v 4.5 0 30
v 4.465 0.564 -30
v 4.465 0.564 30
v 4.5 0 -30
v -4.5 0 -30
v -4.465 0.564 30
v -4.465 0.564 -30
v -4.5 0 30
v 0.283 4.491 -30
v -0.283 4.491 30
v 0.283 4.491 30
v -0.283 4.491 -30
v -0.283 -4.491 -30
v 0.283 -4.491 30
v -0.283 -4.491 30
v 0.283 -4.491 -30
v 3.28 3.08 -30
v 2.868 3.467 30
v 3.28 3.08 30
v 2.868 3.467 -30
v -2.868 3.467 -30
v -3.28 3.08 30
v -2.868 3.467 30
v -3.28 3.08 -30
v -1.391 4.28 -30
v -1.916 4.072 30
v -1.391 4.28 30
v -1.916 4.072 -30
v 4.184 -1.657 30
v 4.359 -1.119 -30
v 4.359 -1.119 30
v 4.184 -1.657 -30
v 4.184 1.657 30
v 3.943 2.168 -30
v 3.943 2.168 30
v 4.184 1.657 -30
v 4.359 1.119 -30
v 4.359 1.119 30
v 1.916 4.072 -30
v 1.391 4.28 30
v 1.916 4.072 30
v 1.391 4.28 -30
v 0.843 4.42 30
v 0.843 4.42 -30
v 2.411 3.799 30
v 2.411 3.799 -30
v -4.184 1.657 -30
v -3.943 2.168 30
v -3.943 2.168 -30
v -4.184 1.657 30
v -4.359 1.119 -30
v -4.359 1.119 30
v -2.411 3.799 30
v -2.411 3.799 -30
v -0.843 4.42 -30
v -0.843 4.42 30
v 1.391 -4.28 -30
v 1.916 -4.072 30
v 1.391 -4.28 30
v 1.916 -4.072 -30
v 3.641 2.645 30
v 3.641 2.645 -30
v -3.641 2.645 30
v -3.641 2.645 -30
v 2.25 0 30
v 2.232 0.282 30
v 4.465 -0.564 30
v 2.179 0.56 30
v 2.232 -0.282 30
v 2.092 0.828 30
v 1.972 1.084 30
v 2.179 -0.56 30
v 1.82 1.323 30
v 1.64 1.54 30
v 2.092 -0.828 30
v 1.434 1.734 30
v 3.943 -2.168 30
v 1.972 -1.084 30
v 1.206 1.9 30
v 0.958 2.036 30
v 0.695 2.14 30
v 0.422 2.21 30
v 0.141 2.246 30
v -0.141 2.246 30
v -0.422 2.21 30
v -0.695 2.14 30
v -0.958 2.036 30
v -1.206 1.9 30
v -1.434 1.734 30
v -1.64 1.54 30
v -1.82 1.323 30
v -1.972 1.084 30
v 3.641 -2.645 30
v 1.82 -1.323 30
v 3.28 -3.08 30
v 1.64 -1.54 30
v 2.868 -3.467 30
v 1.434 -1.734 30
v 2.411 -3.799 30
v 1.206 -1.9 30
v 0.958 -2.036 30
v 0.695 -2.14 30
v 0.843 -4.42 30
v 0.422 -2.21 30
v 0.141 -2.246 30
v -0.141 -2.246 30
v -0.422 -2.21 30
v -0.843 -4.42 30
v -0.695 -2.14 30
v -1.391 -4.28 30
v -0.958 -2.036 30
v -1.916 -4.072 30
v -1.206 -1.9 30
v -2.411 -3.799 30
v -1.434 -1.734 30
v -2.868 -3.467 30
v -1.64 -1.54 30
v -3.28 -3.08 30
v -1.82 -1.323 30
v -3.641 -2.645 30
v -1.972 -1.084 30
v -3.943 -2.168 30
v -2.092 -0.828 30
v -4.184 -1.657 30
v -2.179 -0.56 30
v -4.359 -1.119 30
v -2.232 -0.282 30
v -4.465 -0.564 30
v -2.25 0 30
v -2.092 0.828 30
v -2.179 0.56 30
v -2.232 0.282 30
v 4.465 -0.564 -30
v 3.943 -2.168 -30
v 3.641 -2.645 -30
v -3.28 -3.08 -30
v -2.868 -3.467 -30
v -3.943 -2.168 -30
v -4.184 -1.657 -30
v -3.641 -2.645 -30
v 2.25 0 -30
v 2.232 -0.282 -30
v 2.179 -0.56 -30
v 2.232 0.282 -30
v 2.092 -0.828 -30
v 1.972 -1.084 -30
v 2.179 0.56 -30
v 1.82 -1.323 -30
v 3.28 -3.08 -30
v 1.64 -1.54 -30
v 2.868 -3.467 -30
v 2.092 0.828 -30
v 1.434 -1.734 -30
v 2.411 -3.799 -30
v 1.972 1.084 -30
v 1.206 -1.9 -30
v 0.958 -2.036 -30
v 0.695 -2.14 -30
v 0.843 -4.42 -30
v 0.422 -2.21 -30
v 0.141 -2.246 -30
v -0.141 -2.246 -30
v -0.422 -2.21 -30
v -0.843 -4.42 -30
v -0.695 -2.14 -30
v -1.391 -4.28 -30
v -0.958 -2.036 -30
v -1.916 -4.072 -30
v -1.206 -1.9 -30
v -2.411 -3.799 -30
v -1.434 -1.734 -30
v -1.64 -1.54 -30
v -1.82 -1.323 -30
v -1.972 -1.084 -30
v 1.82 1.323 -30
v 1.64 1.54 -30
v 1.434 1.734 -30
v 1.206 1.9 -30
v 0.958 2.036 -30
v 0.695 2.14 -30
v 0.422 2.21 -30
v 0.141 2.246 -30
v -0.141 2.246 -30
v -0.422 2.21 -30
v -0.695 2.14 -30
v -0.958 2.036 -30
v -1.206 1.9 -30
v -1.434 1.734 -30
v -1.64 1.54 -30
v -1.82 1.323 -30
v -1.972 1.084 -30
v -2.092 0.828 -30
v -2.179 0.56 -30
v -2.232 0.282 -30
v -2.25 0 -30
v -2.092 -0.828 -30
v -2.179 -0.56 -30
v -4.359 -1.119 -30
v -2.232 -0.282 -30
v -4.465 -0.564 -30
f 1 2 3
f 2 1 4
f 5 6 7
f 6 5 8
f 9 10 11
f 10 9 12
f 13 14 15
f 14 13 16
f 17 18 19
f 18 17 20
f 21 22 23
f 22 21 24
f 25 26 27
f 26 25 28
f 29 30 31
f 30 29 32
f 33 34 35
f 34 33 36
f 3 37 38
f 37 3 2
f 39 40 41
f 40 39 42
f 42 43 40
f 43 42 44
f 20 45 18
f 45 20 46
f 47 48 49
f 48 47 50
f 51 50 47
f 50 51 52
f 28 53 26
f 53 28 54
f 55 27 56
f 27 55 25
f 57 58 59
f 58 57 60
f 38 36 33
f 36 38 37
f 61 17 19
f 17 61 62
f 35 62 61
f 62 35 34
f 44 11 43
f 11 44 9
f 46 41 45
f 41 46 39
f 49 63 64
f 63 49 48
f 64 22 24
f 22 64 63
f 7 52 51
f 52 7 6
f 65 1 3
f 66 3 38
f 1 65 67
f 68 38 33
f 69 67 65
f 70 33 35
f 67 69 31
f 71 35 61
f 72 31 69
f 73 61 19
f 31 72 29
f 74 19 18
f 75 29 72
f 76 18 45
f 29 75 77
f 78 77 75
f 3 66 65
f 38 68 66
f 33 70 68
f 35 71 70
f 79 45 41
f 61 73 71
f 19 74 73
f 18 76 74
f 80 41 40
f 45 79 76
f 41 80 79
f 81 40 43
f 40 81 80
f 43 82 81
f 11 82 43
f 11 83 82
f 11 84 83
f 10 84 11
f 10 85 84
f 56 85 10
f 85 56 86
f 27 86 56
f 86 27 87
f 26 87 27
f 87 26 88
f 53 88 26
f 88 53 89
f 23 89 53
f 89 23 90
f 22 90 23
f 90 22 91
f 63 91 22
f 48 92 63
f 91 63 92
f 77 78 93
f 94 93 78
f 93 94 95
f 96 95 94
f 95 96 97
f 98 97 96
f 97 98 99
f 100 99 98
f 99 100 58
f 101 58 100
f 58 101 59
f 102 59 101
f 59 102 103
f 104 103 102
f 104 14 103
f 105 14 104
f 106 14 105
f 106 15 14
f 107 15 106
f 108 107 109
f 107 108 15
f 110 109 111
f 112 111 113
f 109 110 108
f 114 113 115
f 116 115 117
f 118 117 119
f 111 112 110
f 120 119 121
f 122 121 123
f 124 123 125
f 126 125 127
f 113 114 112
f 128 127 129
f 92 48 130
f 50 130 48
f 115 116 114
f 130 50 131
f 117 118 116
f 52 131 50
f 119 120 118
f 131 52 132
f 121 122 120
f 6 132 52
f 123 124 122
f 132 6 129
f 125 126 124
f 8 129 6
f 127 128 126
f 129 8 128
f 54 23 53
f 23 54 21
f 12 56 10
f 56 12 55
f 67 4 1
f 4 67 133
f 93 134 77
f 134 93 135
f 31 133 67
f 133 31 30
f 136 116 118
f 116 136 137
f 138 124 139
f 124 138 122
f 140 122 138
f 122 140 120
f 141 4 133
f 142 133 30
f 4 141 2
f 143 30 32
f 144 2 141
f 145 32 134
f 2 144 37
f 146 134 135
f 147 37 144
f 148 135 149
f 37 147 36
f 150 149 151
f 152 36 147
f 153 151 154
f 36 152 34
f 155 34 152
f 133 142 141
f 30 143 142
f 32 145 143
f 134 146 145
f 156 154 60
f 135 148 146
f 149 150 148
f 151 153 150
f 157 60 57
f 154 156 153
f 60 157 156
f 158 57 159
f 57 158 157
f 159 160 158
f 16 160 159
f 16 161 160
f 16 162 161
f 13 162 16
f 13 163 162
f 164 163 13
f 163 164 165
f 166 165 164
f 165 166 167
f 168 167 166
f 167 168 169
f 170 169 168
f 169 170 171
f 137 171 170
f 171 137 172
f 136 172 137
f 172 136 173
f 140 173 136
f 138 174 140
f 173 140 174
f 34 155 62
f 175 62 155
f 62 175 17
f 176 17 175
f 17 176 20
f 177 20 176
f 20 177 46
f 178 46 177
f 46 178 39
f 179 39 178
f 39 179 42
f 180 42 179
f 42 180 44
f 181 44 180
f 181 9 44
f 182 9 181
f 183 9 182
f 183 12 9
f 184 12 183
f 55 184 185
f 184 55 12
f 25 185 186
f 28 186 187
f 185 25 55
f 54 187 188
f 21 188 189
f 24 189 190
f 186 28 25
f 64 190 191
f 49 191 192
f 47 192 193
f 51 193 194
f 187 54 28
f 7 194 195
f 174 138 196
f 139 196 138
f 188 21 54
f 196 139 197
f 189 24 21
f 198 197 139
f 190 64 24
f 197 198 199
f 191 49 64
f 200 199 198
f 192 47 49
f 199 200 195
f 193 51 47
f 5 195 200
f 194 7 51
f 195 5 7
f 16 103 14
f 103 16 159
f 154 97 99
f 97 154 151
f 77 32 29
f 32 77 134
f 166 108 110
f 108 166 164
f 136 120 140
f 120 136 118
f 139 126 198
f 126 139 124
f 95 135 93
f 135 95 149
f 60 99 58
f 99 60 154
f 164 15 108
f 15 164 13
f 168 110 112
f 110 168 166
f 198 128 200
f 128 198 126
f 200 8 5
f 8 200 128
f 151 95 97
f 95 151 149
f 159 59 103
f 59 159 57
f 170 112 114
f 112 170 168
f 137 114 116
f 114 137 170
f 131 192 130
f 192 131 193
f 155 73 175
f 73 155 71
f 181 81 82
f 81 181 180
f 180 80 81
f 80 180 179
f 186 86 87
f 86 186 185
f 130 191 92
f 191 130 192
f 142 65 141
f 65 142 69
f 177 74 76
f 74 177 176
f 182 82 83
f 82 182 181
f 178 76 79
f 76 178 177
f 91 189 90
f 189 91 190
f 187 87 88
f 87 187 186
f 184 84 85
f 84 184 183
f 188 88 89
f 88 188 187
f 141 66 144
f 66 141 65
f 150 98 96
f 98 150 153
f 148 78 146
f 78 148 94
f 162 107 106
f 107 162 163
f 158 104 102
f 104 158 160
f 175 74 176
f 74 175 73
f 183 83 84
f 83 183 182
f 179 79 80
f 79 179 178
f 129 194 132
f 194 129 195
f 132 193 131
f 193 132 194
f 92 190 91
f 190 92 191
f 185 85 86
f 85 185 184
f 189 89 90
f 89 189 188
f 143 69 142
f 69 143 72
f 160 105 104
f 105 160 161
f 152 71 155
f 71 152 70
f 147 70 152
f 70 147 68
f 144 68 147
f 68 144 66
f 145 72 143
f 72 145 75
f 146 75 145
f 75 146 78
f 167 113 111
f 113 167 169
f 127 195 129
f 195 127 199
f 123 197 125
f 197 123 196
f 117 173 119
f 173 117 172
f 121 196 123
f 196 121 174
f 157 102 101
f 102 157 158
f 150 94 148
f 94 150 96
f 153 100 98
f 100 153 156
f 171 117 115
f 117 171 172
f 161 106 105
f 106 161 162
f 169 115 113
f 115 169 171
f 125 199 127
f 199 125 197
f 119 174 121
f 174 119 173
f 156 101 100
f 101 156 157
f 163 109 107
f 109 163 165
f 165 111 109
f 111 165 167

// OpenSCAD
$fn = 50;


difference() {
	union() {
		translate(v = [0, 0, -30.0000000000]) {
			cylinder(h = 60, r = 4.5000000000);
		}
	}
	union() {
		translate(v = [0, 0, -100.0000000000]) {
			cylinder(h = 200, r = 2.2500000000);
		}
	}
}
